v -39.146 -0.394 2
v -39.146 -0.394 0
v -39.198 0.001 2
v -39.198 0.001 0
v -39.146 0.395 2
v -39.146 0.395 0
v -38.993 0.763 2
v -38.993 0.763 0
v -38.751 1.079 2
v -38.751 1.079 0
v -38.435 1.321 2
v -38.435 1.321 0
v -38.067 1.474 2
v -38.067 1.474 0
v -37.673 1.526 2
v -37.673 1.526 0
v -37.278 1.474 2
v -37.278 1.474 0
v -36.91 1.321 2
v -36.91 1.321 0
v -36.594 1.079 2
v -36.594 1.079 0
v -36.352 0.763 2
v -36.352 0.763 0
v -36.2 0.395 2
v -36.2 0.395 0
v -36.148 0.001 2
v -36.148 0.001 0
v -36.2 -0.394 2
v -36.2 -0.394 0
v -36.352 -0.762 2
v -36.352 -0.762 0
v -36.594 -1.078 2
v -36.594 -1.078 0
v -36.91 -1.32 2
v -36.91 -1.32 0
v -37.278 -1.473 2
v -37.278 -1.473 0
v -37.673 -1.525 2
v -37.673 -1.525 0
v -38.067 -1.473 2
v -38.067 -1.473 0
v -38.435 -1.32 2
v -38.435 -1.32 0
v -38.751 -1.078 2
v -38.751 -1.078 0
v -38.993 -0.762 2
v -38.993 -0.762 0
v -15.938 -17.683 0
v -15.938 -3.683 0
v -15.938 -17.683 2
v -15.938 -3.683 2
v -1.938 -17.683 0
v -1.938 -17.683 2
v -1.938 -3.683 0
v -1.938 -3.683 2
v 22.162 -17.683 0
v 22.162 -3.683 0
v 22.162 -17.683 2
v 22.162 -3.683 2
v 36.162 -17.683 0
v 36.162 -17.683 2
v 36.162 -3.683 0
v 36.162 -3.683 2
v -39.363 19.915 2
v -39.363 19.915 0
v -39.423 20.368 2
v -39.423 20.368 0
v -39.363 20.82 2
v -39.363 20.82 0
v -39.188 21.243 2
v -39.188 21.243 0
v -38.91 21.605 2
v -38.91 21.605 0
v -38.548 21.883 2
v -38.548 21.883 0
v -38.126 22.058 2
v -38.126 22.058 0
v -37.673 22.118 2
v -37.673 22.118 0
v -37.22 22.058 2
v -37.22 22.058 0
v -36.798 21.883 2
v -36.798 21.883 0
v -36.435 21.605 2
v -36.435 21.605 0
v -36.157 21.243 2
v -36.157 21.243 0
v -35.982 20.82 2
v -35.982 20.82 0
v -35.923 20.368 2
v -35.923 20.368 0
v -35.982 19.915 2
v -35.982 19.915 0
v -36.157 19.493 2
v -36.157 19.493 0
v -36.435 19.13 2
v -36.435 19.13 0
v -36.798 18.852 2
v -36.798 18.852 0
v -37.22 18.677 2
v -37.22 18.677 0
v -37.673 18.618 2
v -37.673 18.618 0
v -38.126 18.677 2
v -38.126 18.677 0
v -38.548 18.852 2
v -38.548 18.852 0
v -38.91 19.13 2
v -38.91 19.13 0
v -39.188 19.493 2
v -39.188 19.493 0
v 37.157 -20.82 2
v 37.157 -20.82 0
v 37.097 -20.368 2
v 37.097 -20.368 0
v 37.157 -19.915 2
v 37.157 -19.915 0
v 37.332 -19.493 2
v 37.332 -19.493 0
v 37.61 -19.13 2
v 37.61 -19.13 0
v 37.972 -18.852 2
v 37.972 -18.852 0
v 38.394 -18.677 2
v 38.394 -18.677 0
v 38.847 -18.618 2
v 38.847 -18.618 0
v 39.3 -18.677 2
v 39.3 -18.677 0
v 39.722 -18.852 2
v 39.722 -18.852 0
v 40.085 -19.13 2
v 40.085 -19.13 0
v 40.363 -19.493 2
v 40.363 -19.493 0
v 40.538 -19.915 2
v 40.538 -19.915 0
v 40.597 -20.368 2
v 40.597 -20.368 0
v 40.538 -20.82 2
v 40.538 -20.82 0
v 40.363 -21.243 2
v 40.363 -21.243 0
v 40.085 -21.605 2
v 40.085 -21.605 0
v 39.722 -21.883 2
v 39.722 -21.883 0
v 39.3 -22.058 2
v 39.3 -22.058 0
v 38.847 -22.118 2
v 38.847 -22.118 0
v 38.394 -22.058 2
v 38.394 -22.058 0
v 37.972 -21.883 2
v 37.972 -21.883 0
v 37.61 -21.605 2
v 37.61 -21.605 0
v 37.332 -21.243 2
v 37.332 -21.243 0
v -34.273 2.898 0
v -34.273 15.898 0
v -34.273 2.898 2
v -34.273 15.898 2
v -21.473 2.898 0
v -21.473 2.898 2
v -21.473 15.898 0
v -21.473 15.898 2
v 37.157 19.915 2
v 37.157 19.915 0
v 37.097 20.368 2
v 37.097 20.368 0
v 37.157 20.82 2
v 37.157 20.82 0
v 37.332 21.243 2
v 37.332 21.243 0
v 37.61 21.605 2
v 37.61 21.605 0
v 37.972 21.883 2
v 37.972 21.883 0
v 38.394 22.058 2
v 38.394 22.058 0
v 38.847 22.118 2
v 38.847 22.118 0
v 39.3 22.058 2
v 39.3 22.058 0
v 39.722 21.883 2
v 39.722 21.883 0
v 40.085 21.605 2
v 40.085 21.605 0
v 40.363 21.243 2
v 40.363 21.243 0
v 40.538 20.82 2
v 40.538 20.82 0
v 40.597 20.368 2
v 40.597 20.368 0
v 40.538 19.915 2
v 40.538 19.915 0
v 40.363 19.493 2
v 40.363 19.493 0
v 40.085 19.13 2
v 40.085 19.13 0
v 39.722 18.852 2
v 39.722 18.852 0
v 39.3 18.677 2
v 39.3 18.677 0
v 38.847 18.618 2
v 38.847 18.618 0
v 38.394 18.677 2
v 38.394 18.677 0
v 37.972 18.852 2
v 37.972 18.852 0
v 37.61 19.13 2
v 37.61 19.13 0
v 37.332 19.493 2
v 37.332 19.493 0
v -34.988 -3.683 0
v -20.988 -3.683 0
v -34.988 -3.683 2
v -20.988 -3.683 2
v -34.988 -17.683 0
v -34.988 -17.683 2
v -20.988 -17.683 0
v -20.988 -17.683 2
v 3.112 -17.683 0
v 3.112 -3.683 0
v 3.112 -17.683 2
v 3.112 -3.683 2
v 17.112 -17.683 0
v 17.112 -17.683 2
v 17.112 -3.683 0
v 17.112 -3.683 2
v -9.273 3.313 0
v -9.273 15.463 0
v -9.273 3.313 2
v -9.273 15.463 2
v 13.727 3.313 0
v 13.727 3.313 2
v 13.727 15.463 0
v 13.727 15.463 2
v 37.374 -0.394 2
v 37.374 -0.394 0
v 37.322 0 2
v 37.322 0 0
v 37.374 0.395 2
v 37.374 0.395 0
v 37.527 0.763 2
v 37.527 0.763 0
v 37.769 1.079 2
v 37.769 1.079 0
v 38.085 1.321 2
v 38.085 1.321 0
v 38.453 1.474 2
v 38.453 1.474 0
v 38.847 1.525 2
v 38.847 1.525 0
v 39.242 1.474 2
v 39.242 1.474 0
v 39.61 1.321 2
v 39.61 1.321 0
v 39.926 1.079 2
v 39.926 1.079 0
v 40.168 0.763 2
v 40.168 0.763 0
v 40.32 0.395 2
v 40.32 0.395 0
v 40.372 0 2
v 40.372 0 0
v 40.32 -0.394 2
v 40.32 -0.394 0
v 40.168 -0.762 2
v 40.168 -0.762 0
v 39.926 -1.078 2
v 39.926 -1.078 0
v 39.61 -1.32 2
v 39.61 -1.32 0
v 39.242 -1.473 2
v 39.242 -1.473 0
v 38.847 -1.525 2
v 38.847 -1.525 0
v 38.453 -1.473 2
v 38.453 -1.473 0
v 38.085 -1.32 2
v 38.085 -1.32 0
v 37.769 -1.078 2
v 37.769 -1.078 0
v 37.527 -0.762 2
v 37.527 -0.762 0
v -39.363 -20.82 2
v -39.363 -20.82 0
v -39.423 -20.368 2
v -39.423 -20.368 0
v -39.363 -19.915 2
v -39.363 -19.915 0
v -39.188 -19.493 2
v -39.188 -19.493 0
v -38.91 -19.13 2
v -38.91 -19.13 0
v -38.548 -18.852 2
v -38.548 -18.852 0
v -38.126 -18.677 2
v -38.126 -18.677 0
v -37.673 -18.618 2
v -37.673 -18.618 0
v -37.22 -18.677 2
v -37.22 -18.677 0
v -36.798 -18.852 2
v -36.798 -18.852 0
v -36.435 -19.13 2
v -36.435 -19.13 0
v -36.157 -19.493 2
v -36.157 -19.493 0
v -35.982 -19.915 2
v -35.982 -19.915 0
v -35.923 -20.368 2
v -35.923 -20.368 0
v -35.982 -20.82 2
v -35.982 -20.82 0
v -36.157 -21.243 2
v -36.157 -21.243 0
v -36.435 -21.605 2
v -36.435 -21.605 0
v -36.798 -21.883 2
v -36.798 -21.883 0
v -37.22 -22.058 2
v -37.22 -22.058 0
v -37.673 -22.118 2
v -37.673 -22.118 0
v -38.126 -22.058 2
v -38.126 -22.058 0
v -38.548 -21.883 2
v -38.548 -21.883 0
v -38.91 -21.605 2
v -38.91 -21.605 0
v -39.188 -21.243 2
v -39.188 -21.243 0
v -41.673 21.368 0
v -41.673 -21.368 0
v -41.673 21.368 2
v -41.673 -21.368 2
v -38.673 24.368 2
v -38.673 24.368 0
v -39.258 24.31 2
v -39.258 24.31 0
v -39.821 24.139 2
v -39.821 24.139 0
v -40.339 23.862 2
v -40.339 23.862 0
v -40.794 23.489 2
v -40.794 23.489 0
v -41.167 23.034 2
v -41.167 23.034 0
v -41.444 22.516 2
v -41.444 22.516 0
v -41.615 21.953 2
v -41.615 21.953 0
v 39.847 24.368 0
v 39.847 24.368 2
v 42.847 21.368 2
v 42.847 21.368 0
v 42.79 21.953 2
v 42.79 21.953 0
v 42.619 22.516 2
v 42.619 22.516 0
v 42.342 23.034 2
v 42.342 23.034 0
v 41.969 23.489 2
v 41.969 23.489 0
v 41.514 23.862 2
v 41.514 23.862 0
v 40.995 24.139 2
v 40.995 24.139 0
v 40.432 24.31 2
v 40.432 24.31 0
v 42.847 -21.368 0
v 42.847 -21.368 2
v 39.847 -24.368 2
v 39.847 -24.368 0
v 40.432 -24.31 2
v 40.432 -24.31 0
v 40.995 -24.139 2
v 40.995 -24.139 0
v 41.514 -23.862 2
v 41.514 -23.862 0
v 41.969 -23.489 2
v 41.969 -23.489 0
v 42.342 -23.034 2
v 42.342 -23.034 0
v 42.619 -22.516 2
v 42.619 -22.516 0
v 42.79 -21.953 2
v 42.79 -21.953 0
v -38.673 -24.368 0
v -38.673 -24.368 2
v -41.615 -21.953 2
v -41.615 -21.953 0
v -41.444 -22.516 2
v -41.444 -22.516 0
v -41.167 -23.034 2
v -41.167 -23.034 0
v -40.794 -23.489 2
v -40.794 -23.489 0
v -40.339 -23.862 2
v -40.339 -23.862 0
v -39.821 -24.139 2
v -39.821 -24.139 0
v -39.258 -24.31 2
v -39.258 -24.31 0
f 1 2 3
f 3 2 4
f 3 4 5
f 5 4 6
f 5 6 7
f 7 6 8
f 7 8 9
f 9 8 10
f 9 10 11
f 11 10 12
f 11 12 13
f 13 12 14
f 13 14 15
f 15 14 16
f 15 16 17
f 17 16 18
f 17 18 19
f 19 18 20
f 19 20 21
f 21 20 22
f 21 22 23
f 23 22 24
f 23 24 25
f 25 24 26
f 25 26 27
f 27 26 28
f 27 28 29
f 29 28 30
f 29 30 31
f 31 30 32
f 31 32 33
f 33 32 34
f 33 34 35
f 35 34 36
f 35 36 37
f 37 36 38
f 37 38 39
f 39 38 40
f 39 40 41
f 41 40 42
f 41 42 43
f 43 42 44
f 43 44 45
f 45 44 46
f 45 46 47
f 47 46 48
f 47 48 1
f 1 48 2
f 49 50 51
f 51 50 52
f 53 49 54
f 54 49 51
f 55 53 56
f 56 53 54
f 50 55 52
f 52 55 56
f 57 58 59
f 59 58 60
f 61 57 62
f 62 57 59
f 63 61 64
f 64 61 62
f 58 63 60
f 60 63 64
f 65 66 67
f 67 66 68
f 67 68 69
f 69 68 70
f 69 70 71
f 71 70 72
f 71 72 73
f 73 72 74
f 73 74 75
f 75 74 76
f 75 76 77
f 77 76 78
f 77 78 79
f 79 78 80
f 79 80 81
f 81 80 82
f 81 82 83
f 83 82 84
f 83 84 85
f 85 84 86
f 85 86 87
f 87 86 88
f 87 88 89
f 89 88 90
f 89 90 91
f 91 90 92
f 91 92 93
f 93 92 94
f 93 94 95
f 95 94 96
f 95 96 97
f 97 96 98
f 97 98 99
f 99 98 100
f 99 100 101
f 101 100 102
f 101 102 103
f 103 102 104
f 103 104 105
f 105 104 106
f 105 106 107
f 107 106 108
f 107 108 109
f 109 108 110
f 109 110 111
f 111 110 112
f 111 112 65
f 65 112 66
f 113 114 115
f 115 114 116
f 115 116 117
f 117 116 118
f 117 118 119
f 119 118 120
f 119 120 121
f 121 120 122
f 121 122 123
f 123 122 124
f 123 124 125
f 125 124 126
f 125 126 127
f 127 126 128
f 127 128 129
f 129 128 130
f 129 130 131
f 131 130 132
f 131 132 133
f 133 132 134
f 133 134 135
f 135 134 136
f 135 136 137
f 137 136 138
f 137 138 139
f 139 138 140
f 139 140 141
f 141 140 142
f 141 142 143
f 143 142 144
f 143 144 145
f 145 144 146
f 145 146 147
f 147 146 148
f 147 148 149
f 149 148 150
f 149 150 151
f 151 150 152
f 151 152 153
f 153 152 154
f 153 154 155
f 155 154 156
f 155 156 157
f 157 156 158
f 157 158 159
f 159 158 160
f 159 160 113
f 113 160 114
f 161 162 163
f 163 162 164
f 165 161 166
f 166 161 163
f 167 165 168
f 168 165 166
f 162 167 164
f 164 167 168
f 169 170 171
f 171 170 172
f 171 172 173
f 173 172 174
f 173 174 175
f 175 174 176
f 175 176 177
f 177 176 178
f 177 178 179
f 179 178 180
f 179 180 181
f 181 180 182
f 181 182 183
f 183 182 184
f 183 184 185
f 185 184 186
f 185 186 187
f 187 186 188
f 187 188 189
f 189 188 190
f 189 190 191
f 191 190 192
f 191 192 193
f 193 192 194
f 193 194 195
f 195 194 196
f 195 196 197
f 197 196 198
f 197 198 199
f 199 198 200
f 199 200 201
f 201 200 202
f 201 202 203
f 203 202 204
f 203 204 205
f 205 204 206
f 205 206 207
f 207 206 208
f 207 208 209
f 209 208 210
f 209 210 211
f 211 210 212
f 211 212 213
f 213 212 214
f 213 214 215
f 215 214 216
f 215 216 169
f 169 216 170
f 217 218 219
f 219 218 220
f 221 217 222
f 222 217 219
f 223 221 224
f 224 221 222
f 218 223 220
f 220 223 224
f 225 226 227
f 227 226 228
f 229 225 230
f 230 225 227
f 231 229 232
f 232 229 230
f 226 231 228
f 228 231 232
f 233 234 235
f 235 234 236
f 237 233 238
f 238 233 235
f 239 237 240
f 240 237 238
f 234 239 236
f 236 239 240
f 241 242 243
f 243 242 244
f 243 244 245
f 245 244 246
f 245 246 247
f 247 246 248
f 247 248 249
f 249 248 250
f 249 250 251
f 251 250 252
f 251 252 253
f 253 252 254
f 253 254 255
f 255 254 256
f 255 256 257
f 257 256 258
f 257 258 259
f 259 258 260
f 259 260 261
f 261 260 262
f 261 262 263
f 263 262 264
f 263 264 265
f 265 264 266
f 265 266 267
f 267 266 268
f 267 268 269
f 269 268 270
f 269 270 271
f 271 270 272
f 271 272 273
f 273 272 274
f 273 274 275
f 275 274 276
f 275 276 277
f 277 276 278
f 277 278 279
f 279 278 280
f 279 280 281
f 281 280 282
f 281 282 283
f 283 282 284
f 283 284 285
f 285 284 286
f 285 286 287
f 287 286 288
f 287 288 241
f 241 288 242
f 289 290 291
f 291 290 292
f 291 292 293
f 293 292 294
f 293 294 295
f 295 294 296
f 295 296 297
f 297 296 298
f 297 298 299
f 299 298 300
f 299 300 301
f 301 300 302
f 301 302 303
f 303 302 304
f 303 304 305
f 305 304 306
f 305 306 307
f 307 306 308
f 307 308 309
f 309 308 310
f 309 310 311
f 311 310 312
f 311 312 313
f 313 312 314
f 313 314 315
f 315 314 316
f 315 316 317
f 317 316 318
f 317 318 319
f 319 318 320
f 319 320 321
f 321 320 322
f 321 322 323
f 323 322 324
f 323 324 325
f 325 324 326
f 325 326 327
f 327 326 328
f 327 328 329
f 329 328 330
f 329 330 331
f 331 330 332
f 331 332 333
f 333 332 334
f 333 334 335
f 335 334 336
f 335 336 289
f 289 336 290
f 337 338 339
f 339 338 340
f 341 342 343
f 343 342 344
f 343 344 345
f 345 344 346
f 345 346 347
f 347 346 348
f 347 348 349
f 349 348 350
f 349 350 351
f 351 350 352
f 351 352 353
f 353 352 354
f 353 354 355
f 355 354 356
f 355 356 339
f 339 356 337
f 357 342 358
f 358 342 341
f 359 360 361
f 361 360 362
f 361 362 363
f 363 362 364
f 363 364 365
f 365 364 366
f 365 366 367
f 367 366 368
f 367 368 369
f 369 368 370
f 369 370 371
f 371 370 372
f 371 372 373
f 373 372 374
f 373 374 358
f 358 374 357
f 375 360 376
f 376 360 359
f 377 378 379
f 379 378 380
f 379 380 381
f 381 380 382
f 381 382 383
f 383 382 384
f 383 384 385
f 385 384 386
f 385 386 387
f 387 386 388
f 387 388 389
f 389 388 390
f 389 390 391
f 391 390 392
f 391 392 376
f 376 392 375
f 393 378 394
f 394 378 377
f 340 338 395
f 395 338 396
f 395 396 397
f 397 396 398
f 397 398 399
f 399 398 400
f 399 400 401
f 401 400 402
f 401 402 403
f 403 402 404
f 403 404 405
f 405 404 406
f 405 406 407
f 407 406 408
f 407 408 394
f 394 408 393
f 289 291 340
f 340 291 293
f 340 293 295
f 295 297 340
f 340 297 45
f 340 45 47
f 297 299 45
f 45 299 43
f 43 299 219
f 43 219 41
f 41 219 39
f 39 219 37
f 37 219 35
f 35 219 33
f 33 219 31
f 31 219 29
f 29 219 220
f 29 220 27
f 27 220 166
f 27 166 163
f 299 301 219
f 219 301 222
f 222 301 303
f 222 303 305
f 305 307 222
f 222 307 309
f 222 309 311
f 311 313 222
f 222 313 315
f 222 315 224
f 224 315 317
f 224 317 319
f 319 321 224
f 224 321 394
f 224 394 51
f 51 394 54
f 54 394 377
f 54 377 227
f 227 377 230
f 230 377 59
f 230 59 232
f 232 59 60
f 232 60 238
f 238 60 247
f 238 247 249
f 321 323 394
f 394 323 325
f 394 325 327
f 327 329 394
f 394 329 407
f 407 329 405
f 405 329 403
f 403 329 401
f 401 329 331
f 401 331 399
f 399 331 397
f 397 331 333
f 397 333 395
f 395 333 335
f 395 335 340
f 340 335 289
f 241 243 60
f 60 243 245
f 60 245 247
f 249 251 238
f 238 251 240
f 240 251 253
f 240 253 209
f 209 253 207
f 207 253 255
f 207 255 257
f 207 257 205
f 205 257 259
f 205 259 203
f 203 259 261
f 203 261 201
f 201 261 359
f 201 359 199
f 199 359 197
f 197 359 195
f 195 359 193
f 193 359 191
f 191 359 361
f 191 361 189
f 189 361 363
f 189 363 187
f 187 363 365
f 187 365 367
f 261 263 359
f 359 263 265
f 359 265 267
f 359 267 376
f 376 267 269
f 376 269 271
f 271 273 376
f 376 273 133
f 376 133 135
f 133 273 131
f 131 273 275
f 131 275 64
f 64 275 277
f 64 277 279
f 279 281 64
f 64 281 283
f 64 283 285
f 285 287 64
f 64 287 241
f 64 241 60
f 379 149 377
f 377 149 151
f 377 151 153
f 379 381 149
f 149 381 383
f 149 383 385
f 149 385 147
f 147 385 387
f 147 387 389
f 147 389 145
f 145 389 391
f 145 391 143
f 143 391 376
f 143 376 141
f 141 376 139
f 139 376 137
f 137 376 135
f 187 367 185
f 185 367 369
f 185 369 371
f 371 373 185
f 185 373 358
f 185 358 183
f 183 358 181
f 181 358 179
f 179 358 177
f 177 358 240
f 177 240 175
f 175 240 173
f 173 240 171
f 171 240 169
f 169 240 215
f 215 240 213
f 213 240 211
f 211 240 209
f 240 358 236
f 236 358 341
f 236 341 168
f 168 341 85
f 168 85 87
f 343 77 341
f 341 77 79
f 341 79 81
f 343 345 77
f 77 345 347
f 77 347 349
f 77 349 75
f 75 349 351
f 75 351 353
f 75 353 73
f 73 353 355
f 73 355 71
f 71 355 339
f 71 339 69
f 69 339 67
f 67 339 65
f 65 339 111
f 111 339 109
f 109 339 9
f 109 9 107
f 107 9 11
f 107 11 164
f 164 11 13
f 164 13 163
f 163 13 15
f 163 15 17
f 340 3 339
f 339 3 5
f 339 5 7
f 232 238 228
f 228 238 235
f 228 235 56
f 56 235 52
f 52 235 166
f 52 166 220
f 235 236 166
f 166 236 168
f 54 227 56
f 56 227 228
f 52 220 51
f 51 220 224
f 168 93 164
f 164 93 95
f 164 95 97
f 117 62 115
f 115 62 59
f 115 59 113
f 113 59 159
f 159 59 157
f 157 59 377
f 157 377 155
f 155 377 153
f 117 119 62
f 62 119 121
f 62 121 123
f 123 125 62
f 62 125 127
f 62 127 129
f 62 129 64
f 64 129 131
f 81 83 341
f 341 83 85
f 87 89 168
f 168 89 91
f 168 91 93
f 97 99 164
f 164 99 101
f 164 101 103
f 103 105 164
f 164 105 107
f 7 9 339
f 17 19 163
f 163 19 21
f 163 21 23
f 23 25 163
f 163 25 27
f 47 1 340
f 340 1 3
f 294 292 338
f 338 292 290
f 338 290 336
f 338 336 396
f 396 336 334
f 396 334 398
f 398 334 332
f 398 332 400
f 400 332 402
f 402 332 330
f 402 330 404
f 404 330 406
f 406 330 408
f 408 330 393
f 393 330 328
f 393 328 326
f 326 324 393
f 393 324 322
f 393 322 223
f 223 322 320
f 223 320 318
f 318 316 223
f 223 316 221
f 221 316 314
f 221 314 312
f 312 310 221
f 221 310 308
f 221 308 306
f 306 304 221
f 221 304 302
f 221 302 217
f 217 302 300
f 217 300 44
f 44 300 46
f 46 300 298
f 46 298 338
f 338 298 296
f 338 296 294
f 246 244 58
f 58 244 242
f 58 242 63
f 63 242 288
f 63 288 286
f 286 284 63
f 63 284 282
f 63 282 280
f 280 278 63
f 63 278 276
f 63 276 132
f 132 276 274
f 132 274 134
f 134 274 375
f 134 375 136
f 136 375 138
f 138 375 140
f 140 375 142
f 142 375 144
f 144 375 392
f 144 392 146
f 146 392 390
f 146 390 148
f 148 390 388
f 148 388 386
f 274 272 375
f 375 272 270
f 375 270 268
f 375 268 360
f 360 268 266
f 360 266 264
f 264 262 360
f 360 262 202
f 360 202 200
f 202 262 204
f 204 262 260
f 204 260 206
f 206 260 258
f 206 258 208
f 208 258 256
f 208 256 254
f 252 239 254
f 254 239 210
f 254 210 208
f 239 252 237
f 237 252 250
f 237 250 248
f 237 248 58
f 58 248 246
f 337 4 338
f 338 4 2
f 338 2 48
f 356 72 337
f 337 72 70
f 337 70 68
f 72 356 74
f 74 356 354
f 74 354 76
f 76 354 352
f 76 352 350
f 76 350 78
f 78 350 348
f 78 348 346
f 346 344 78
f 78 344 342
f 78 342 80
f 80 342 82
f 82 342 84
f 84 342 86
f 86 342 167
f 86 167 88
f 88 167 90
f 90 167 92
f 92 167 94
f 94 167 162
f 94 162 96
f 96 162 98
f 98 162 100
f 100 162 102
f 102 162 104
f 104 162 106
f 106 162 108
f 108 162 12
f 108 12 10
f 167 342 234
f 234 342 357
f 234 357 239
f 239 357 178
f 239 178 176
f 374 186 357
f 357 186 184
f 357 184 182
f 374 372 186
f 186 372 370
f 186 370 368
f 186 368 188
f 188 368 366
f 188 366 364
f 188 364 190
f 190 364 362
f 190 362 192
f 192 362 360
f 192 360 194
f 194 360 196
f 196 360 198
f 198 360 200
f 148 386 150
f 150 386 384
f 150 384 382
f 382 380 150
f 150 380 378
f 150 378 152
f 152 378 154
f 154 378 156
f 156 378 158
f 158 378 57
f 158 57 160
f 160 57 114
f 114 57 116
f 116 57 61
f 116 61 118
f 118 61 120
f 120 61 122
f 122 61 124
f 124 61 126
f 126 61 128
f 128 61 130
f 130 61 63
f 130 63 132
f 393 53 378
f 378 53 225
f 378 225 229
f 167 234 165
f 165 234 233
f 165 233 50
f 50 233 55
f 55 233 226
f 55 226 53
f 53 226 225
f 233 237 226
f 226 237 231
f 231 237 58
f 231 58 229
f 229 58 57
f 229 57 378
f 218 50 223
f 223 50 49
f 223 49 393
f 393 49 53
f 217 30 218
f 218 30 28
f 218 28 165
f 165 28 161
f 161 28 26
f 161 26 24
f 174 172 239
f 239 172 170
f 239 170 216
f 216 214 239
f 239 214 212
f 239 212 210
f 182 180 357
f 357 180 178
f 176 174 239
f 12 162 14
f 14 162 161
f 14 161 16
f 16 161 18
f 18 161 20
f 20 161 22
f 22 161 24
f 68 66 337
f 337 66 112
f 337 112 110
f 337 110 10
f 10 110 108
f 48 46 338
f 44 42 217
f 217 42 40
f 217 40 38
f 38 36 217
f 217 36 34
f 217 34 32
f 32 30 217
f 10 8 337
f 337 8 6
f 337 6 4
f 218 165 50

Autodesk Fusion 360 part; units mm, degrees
sketch "Sketch1" plane through (0, 0, 0) normal (0, 0, 1) x (1, 0, 0)
  circle A0 centre (38.8472, 20.3675) radius 1.75
  circle A1 centre (38.8472, -0.0995) radius 1.525
  circle A2 centre (-37.6728, -20.3675) radius 1.75
  circle A3 centre (-37.6728, 20.3675) radius 1.75
  arc A4 (-38.6728, 24.3675) -> (-41.6728, 21.3675) centre (-38.6728, 21.3675) ccw
  line L0 (-38.6728, 24.3675) -> (39.8472, 24.3675)
  line L1 (-41.6728, -21.3675) -> (-41.6728, 21.3675)
  circle A5 centre (-37.6728, -0.0995) radius 1.525
  arc A6 (42.8472, 21.3675) -> (39.8472, 24.3675) centre (39.8472, 21.3675) ccw
  line L2 (42.8472, 21.3675) -> (42.8472, -21.3675)
  arc A7 (-41.6728, -21.3675) -> (-38.6728, -24.3675) centre (-38.6728, -21.3675) ccw
  line L3 (39.8472, -24.3675) -> (-38.6728, -24.3675)
  arc A8 (39.8472, -24.3675) -> (42.8472, -21.3675) centre (39.8472, -21.3675) ccw
  circle A9 centre (38.8472, -20.3675) radius 1.75
  line L4 (-20.9878, -3.6825) -> (-34.9878, -3.6825)
  line L5 (-34.9878, -3.6825) -> (-34.9878, -17.6825)
  line L6 (-34.9878, -17.6825) -> (-20.9878, -17.6825)
  line L7 (-20.9878, -17.6825) -> (-20.9878, -3.6825)
  line L8 (-1.9378, -17.6825) -> (-15.9378, -17.6825)
  line L9 (-15.9378, -17.6825) -> (-15.9378, -3.6825)
  line L10 (-15.9378, -3.6825) -> (-1.9378, -3.6825)
  line L11 (-1.9378, -3.6825) -> (-1.9378, -17.6825)
  line L12 (17.1122, -17.6825) -> (3.1122, -17.6825)
  line L13 (3.1122, -17.6825) -> (3.1122, -3.6825)
  line L14 (3.1122, -3.6825) -> (17.1122, -3.6825)
  line L15 (17.1122, -3.6825) -> (17.1122, -17.6825)
  line L16 (36.1622, -17.6825) -> (22.1622, -17.6825)
  line L17 (22.1622, -17.6825) -> (22.1622, -3.6825)
  line L18 (22.1622, -3.6825) -> (36.1622, -3.6825)
  line L19 (36.1622, -3.6825) -> (36.1622, -17.6825)
  line L20 (-21.4728, 2.8975) -> (-34.2728, 2.8975)
  line L21 (-34.2728, 2.8975) -> (-34.2728, 15.8975)
  line L22 (-34.2728, 15.8975) -> (-21.4728, 15.8975)
  line L23 (-21.4728, 15.8975) -> (-21.4728, 2.8975)
  line L24 (13.7272, 3.3125) -> (-9.2728, 3.3125)
  line L25 (-9.2728, 3.3125) -> (-9.2728, 15.4625)
  line L26 (-9.2728, 15.4625) -> (13.7272, 15.4625)
  line L27 (13.7272, 15.4625) -> (13.7272, 3.3125)
  point P0 (-27.9878, -10.6825)
  point P1 (-8.9378, -10.6825)
  point P2 (10.1122, -10.6825)
  point P3 (29.1622, -10.6825)
  point P4 (-27.8728, 9.3975)
  point P5 (2.2272, 9.3875)
  dimension "d44" = 3.05
  dimension "d45" = 3.05
  dimension "d46" = 20.268
  dimension "d47" = 3
  dimension "d48" = 3
  dimension "d49" = 3
  dimension "d50" = 3
  dimension "d51" = 3.5
  dimension "d52" = 4
  dimension "d53" = 1.4142
  dimension "d54" = 20.268
  dimension "d55" = 48.735
  dimension "d56" = 84.52
  dimension "d57" = 19.05
  dimension "d58" = 19.05
  dimension "d59" = 19.05
  dimension "d60" = 6.685
  dimension "d63" = 6.685
  dimension "d64" = 6.685
  dimension "d65" = 6.685
  dimension "d66" = 6.685
  dimension "d67" = 6.685
  dimension "d69" = 14
  dimension "d70" = 14
  dimension "d71" = 14
  dimension "d72" = 14
  dimension "d73" = 14
  dimension "d74" = 14
  dimension "d75" = 14
  dimension "d76" = 14
  dimension "d77" = 12.8
  dimension "d78" = 13
  dimension "d79" = 14.97
  dimension "d80" = 13.8
  dimension "d81" = 23
  dimension "d82" = 12.15
  dimension "d83" = 43.9
  dimension "d84" = 14.98
  dimension "d87" = 4
  dimension "d88" = 4
  dimension "d89" = 1.4142
  dimension "d92" = 4
  dimension "d93" = 1.4142
  dimension "d94" = 4
  dimension "d95" = 4
extrude "Extrude5" add sketch "Sketch1" along normal blind 2
extrude "Extrude1" [suppressed]
extrude "Extrude2" [suppressed]
extrude "Extrude3" [suppressed]
extrude "Extrude4" [suppressed]
equation "d53 = ( sqrt(2) ) * 1 mm"
equation "d89 = ( sqrt(2) ) * 1 mm"
